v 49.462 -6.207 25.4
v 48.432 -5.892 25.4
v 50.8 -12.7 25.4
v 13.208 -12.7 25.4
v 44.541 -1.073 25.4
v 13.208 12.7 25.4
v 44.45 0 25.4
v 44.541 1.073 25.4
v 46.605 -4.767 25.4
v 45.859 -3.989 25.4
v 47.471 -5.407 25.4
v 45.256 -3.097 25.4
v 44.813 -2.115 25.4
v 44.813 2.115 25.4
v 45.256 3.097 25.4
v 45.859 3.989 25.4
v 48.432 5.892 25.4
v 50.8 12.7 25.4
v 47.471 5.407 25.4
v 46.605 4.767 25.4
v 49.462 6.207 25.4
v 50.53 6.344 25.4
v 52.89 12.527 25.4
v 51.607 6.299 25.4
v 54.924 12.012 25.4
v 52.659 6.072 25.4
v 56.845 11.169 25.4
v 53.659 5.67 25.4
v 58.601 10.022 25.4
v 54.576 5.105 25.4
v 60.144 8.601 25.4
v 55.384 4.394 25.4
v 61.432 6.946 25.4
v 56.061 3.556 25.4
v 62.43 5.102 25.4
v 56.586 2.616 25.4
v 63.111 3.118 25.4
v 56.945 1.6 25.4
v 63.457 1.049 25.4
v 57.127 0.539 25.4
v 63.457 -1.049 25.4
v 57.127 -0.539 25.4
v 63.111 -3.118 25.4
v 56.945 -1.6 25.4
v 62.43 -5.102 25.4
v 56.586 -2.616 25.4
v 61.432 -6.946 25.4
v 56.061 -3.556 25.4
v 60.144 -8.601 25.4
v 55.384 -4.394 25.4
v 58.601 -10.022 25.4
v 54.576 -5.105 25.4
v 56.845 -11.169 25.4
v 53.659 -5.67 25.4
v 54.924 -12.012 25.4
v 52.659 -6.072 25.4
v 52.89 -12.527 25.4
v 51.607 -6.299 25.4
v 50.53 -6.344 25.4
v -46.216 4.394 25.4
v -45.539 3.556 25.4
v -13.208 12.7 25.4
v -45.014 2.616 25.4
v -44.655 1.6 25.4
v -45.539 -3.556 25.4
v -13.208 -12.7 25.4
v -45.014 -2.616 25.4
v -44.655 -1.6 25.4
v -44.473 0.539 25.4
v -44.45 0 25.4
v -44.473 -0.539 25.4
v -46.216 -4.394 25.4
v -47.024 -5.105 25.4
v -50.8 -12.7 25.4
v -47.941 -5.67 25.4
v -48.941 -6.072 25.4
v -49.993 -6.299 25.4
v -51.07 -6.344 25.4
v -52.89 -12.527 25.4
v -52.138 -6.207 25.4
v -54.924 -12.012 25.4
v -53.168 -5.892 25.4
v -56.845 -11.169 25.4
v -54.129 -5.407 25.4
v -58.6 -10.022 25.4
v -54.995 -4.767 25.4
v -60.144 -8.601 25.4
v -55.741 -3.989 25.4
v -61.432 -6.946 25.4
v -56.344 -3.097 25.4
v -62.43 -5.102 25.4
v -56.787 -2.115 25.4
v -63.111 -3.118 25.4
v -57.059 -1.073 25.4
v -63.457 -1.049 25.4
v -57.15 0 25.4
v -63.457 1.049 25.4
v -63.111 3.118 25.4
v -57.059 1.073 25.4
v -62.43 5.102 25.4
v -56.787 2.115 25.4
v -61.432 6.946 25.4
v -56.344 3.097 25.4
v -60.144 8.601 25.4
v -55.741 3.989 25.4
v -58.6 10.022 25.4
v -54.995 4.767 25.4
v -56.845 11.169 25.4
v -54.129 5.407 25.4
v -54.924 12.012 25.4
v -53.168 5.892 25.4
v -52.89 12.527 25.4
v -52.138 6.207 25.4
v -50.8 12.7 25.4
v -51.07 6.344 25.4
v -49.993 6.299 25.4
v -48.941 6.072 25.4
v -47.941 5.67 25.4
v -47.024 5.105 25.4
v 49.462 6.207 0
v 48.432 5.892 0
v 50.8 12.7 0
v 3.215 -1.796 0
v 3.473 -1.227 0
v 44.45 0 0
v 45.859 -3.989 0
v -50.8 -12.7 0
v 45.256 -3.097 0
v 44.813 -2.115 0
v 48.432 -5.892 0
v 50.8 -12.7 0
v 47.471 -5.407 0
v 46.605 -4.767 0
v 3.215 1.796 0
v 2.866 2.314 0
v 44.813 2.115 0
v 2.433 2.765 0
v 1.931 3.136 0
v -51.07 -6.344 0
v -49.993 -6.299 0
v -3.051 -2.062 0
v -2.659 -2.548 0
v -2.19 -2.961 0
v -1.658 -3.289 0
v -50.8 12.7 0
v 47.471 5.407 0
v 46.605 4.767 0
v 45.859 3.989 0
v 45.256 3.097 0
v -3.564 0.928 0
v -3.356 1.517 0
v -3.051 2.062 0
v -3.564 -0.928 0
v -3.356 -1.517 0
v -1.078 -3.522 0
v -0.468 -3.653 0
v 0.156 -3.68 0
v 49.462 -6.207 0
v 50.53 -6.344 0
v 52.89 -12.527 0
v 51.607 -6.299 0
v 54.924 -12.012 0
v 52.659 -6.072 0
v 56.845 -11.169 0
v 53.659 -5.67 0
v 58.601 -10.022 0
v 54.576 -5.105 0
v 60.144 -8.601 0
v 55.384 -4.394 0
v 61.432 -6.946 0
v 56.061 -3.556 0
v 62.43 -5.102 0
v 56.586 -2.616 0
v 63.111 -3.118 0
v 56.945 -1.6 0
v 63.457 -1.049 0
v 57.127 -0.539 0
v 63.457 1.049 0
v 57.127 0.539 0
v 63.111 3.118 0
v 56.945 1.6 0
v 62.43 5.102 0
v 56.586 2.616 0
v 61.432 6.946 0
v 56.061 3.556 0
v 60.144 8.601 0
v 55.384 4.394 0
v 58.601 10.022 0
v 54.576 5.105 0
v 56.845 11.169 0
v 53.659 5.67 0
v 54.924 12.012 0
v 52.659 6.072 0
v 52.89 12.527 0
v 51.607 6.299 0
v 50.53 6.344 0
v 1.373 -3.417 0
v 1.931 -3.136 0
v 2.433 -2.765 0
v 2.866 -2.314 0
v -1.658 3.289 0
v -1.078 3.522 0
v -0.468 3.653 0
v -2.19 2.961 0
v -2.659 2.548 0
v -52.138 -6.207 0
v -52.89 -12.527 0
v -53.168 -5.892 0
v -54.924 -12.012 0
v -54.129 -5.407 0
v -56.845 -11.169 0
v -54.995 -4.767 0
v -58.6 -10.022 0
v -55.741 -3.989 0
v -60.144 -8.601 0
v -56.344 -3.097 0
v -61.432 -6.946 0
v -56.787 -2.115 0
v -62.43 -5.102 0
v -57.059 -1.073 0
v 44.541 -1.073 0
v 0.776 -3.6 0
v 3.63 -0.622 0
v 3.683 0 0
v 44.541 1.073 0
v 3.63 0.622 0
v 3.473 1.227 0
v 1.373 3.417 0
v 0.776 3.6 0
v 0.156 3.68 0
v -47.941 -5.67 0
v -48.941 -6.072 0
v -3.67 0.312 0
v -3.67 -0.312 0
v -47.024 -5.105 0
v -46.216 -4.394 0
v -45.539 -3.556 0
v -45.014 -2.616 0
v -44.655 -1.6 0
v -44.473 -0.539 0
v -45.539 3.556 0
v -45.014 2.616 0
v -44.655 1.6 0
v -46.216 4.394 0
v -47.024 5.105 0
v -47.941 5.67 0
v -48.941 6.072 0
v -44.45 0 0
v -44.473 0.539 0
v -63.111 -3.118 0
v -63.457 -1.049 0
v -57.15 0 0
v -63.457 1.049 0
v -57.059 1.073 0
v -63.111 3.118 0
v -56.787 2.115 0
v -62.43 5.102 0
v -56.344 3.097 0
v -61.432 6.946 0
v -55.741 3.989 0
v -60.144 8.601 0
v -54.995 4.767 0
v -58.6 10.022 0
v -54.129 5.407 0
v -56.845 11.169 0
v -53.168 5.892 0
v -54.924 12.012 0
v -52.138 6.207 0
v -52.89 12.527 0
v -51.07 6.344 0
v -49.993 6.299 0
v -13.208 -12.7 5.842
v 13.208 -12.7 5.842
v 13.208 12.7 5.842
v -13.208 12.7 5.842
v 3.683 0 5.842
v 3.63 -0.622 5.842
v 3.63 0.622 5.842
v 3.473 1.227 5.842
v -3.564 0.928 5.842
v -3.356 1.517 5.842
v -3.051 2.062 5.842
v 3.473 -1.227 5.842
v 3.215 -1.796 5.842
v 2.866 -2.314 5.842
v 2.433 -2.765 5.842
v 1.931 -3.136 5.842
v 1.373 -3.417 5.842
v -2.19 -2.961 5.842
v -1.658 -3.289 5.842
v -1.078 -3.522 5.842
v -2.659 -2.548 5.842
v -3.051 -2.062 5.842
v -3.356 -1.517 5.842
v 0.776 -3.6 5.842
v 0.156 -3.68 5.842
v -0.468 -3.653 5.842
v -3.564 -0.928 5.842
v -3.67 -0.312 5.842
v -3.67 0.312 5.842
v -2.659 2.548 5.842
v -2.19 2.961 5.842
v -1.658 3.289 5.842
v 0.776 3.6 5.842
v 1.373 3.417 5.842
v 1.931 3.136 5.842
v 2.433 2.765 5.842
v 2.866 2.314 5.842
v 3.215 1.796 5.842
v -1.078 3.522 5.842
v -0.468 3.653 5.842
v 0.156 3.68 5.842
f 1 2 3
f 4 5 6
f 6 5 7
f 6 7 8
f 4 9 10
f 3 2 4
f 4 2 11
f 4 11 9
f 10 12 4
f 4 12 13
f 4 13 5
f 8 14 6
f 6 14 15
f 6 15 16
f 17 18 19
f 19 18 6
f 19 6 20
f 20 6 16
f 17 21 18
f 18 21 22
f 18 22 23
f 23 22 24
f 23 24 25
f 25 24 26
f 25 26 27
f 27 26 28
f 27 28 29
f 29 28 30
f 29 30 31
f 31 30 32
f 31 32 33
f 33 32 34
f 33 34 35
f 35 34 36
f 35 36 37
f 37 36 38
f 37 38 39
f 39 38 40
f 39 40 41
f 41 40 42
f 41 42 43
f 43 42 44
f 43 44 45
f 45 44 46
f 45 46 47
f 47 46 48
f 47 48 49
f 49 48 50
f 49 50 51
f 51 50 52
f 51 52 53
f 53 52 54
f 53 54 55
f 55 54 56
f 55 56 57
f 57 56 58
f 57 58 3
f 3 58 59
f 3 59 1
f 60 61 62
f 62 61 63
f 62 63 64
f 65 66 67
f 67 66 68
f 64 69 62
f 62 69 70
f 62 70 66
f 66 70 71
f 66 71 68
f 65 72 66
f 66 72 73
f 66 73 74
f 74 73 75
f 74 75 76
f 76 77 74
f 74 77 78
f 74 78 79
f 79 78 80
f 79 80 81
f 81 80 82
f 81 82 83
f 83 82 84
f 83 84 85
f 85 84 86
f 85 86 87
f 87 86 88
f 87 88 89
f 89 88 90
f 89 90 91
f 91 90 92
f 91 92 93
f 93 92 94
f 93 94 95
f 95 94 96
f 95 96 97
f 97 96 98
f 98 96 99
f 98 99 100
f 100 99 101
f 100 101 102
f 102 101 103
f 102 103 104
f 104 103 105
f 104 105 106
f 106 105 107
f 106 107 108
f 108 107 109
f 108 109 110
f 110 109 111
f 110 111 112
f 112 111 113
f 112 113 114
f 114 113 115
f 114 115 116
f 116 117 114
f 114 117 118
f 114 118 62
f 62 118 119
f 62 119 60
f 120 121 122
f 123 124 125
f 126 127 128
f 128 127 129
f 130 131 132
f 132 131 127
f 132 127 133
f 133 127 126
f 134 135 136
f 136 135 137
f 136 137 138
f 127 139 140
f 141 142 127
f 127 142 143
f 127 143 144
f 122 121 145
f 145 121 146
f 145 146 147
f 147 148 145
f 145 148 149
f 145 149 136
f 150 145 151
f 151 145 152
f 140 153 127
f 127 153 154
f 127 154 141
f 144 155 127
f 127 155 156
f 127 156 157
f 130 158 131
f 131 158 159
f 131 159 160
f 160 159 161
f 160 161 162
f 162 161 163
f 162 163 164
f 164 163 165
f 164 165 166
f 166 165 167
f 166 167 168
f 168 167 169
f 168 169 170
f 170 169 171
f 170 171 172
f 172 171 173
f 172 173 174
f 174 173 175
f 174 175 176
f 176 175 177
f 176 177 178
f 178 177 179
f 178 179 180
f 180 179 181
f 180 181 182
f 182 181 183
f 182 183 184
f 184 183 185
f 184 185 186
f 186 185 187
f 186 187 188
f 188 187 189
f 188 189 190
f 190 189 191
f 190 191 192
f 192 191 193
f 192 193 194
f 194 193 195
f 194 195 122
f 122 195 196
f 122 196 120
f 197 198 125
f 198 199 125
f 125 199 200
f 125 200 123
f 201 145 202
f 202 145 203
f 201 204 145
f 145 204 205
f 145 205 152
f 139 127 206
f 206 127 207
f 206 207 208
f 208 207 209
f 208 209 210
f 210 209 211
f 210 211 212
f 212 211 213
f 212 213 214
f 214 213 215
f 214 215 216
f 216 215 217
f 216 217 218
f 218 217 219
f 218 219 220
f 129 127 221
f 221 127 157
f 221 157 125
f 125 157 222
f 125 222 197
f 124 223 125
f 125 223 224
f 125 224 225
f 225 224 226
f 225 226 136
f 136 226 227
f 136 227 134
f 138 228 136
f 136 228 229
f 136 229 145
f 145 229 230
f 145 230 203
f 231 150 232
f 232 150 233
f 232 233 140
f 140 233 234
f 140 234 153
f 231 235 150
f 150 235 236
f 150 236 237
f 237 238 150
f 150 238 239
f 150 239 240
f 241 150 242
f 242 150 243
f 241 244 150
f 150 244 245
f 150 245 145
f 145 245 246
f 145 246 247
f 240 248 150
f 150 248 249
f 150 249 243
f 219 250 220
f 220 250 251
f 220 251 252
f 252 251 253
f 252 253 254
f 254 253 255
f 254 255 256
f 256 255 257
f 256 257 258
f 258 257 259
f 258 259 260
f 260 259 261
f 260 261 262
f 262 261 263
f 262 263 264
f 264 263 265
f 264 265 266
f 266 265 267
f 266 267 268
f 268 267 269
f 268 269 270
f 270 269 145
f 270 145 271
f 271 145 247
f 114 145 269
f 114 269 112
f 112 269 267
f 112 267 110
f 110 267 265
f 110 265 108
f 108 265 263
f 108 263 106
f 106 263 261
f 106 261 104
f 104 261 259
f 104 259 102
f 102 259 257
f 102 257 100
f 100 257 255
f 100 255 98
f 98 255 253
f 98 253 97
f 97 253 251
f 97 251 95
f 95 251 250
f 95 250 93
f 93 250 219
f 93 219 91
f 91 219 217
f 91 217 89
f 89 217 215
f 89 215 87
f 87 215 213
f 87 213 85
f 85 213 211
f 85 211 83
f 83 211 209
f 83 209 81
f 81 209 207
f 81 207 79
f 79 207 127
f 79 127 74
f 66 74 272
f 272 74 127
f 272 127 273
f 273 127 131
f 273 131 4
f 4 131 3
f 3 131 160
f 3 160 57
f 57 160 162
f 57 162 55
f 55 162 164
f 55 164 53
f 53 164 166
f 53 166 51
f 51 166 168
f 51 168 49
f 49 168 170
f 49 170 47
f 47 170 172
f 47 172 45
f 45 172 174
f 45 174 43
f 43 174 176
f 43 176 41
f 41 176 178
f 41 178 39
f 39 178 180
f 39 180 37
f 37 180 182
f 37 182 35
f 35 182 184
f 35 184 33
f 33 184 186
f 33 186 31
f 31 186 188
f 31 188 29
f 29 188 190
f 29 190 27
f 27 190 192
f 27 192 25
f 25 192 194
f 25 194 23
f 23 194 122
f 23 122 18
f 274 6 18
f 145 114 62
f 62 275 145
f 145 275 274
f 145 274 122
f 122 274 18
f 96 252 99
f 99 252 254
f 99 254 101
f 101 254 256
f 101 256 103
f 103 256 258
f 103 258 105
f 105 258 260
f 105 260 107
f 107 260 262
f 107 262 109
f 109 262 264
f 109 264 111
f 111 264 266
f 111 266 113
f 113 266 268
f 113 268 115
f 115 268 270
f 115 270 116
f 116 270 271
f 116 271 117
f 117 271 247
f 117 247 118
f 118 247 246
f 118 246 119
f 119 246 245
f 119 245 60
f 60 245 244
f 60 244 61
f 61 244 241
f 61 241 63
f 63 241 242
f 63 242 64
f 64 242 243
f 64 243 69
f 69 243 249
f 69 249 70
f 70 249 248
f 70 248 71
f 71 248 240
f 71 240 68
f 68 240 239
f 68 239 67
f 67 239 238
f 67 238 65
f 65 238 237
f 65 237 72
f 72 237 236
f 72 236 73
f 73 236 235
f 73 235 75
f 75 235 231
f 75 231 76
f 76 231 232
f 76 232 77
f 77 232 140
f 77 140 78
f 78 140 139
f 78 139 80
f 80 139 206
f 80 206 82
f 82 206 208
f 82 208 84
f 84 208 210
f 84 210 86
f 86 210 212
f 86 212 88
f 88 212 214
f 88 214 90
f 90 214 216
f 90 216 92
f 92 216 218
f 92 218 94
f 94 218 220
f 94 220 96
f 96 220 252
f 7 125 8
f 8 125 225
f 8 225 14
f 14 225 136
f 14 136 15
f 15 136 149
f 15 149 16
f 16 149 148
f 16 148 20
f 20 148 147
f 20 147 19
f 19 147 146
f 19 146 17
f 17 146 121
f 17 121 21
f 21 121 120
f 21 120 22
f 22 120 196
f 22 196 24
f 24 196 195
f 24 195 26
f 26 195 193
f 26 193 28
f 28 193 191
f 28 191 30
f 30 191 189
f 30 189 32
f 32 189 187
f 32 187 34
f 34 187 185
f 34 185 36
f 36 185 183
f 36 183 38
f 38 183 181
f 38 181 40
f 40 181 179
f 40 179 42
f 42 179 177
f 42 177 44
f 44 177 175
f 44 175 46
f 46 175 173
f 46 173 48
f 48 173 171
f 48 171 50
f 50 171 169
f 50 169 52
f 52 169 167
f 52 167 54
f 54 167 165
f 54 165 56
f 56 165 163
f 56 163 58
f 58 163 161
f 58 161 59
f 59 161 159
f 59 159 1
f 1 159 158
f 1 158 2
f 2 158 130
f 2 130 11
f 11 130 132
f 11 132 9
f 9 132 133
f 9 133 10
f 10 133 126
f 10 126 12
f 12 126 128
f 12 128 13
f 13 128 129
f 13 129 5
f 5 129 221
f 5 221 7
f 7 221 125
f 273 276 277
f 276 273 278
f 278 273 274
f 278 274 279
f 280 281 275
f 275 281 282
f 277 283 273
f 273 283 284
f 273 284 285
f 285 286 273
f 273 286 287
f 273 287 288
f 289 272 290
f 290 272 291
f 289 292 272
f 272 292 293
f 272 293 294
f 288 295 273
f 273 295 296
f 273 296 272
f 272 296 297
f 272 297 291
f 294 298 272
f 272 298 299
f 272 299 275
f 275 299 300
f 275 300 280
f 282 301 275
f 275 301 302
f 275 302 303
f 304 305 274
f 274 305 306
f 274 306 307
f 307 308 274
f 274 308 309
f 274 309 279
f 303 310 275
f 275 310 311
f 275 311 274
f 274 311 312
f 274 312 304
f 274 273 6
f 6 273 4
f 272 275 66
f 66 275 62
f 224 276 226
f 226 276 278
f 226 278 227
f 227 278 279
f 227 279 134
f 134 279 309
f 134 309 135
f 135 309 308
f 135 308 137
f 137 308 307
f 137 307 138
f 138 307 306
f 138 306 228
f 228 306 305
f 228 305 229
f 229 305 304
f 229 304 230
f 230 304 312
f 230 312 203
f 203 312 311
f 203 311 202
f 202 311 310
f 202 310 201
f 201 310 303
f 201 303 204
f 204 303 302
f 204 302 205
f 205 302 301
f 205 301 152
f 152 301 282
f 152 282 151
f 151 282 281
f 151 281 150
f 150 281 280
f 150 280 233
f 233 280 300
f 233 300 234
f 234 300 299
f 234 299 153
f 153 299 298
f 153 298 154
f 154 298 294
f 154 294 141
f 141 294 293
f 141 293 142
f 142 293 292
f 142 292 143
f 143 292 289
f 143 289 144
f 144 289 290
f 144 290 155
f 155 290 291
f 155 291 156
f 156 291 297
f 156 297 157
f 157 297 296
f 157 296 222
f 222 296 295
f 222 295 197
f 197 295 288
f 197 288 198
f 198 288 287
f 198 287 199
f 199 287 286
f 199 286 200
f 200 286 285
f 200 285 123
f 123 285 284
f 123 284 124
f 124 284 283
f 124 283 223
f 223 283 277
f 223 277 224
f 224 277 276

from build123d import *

# Parameters (mm, degrees)
SKETCH1_R           = 6.35
BOSS_EXTRUDE1_DEPTH = 25.4
SKETCH2_W           = 26.416
SKETCH2_H           = 39.116
CUT_EXTRUDE1_DEPTH  = 26.4
SKETCH3_R           = 3.683
CUT_EXTRUDE2_DEPTH  = 6.842


with BuildPart() as part:
    # Sketch1 → Boss-Extrude1 (new body)
    with BuildSketch(Plane.XY):
        with BuildLine():
            Line((-50.8, 12.7), (50.8, 12.7))
            ThreePointArc((50.8, 12.7), (63.5, 0), (50.8, -12.7))
            Line((50.8, -12.7), (-50.8, -12.7))
            ThreePointArc((-50.8, -12.7), (-63.5, 0), (-50.8, 12.7))
        make_face()
        with Locations((-50.8, 0)):
            Circle(SKETCH1_R, mode=Mode.SUBTRACT)
        with Locations((50.8, 0)):
            Circle(SKETCH1_R, mode=Mode.SUBTRACT)
    extrude(amount=BOSS_EXTRUDE1_DEPTH)

    # Sketch2 → Cut-Extrude1 (cut, through all)
    with BuildSketch(Plane(origin=(0, 12.7, 0), x_dir=(1, 0, 0), z_dir=(0, 1, 0))):
        with Locations((0, -25.4)):
            Rectangle(SKETCH2_W, SKETCH2_H)
    extrude(amount=-CUT_EXTRUDE1_DEPTH, mode=Mode.SUBTRACT)

    # Sketch3 → Cut-Extrude2 (cut, through all)
    with BuildSketch(Plane.XY.offset(5.842)):
        Circle(SKETCH3_R)
    extrude(amount=-CUT_EXTRUDE2_DEPTH, mode=Mode.SUBTRACT)


solid = part.part
